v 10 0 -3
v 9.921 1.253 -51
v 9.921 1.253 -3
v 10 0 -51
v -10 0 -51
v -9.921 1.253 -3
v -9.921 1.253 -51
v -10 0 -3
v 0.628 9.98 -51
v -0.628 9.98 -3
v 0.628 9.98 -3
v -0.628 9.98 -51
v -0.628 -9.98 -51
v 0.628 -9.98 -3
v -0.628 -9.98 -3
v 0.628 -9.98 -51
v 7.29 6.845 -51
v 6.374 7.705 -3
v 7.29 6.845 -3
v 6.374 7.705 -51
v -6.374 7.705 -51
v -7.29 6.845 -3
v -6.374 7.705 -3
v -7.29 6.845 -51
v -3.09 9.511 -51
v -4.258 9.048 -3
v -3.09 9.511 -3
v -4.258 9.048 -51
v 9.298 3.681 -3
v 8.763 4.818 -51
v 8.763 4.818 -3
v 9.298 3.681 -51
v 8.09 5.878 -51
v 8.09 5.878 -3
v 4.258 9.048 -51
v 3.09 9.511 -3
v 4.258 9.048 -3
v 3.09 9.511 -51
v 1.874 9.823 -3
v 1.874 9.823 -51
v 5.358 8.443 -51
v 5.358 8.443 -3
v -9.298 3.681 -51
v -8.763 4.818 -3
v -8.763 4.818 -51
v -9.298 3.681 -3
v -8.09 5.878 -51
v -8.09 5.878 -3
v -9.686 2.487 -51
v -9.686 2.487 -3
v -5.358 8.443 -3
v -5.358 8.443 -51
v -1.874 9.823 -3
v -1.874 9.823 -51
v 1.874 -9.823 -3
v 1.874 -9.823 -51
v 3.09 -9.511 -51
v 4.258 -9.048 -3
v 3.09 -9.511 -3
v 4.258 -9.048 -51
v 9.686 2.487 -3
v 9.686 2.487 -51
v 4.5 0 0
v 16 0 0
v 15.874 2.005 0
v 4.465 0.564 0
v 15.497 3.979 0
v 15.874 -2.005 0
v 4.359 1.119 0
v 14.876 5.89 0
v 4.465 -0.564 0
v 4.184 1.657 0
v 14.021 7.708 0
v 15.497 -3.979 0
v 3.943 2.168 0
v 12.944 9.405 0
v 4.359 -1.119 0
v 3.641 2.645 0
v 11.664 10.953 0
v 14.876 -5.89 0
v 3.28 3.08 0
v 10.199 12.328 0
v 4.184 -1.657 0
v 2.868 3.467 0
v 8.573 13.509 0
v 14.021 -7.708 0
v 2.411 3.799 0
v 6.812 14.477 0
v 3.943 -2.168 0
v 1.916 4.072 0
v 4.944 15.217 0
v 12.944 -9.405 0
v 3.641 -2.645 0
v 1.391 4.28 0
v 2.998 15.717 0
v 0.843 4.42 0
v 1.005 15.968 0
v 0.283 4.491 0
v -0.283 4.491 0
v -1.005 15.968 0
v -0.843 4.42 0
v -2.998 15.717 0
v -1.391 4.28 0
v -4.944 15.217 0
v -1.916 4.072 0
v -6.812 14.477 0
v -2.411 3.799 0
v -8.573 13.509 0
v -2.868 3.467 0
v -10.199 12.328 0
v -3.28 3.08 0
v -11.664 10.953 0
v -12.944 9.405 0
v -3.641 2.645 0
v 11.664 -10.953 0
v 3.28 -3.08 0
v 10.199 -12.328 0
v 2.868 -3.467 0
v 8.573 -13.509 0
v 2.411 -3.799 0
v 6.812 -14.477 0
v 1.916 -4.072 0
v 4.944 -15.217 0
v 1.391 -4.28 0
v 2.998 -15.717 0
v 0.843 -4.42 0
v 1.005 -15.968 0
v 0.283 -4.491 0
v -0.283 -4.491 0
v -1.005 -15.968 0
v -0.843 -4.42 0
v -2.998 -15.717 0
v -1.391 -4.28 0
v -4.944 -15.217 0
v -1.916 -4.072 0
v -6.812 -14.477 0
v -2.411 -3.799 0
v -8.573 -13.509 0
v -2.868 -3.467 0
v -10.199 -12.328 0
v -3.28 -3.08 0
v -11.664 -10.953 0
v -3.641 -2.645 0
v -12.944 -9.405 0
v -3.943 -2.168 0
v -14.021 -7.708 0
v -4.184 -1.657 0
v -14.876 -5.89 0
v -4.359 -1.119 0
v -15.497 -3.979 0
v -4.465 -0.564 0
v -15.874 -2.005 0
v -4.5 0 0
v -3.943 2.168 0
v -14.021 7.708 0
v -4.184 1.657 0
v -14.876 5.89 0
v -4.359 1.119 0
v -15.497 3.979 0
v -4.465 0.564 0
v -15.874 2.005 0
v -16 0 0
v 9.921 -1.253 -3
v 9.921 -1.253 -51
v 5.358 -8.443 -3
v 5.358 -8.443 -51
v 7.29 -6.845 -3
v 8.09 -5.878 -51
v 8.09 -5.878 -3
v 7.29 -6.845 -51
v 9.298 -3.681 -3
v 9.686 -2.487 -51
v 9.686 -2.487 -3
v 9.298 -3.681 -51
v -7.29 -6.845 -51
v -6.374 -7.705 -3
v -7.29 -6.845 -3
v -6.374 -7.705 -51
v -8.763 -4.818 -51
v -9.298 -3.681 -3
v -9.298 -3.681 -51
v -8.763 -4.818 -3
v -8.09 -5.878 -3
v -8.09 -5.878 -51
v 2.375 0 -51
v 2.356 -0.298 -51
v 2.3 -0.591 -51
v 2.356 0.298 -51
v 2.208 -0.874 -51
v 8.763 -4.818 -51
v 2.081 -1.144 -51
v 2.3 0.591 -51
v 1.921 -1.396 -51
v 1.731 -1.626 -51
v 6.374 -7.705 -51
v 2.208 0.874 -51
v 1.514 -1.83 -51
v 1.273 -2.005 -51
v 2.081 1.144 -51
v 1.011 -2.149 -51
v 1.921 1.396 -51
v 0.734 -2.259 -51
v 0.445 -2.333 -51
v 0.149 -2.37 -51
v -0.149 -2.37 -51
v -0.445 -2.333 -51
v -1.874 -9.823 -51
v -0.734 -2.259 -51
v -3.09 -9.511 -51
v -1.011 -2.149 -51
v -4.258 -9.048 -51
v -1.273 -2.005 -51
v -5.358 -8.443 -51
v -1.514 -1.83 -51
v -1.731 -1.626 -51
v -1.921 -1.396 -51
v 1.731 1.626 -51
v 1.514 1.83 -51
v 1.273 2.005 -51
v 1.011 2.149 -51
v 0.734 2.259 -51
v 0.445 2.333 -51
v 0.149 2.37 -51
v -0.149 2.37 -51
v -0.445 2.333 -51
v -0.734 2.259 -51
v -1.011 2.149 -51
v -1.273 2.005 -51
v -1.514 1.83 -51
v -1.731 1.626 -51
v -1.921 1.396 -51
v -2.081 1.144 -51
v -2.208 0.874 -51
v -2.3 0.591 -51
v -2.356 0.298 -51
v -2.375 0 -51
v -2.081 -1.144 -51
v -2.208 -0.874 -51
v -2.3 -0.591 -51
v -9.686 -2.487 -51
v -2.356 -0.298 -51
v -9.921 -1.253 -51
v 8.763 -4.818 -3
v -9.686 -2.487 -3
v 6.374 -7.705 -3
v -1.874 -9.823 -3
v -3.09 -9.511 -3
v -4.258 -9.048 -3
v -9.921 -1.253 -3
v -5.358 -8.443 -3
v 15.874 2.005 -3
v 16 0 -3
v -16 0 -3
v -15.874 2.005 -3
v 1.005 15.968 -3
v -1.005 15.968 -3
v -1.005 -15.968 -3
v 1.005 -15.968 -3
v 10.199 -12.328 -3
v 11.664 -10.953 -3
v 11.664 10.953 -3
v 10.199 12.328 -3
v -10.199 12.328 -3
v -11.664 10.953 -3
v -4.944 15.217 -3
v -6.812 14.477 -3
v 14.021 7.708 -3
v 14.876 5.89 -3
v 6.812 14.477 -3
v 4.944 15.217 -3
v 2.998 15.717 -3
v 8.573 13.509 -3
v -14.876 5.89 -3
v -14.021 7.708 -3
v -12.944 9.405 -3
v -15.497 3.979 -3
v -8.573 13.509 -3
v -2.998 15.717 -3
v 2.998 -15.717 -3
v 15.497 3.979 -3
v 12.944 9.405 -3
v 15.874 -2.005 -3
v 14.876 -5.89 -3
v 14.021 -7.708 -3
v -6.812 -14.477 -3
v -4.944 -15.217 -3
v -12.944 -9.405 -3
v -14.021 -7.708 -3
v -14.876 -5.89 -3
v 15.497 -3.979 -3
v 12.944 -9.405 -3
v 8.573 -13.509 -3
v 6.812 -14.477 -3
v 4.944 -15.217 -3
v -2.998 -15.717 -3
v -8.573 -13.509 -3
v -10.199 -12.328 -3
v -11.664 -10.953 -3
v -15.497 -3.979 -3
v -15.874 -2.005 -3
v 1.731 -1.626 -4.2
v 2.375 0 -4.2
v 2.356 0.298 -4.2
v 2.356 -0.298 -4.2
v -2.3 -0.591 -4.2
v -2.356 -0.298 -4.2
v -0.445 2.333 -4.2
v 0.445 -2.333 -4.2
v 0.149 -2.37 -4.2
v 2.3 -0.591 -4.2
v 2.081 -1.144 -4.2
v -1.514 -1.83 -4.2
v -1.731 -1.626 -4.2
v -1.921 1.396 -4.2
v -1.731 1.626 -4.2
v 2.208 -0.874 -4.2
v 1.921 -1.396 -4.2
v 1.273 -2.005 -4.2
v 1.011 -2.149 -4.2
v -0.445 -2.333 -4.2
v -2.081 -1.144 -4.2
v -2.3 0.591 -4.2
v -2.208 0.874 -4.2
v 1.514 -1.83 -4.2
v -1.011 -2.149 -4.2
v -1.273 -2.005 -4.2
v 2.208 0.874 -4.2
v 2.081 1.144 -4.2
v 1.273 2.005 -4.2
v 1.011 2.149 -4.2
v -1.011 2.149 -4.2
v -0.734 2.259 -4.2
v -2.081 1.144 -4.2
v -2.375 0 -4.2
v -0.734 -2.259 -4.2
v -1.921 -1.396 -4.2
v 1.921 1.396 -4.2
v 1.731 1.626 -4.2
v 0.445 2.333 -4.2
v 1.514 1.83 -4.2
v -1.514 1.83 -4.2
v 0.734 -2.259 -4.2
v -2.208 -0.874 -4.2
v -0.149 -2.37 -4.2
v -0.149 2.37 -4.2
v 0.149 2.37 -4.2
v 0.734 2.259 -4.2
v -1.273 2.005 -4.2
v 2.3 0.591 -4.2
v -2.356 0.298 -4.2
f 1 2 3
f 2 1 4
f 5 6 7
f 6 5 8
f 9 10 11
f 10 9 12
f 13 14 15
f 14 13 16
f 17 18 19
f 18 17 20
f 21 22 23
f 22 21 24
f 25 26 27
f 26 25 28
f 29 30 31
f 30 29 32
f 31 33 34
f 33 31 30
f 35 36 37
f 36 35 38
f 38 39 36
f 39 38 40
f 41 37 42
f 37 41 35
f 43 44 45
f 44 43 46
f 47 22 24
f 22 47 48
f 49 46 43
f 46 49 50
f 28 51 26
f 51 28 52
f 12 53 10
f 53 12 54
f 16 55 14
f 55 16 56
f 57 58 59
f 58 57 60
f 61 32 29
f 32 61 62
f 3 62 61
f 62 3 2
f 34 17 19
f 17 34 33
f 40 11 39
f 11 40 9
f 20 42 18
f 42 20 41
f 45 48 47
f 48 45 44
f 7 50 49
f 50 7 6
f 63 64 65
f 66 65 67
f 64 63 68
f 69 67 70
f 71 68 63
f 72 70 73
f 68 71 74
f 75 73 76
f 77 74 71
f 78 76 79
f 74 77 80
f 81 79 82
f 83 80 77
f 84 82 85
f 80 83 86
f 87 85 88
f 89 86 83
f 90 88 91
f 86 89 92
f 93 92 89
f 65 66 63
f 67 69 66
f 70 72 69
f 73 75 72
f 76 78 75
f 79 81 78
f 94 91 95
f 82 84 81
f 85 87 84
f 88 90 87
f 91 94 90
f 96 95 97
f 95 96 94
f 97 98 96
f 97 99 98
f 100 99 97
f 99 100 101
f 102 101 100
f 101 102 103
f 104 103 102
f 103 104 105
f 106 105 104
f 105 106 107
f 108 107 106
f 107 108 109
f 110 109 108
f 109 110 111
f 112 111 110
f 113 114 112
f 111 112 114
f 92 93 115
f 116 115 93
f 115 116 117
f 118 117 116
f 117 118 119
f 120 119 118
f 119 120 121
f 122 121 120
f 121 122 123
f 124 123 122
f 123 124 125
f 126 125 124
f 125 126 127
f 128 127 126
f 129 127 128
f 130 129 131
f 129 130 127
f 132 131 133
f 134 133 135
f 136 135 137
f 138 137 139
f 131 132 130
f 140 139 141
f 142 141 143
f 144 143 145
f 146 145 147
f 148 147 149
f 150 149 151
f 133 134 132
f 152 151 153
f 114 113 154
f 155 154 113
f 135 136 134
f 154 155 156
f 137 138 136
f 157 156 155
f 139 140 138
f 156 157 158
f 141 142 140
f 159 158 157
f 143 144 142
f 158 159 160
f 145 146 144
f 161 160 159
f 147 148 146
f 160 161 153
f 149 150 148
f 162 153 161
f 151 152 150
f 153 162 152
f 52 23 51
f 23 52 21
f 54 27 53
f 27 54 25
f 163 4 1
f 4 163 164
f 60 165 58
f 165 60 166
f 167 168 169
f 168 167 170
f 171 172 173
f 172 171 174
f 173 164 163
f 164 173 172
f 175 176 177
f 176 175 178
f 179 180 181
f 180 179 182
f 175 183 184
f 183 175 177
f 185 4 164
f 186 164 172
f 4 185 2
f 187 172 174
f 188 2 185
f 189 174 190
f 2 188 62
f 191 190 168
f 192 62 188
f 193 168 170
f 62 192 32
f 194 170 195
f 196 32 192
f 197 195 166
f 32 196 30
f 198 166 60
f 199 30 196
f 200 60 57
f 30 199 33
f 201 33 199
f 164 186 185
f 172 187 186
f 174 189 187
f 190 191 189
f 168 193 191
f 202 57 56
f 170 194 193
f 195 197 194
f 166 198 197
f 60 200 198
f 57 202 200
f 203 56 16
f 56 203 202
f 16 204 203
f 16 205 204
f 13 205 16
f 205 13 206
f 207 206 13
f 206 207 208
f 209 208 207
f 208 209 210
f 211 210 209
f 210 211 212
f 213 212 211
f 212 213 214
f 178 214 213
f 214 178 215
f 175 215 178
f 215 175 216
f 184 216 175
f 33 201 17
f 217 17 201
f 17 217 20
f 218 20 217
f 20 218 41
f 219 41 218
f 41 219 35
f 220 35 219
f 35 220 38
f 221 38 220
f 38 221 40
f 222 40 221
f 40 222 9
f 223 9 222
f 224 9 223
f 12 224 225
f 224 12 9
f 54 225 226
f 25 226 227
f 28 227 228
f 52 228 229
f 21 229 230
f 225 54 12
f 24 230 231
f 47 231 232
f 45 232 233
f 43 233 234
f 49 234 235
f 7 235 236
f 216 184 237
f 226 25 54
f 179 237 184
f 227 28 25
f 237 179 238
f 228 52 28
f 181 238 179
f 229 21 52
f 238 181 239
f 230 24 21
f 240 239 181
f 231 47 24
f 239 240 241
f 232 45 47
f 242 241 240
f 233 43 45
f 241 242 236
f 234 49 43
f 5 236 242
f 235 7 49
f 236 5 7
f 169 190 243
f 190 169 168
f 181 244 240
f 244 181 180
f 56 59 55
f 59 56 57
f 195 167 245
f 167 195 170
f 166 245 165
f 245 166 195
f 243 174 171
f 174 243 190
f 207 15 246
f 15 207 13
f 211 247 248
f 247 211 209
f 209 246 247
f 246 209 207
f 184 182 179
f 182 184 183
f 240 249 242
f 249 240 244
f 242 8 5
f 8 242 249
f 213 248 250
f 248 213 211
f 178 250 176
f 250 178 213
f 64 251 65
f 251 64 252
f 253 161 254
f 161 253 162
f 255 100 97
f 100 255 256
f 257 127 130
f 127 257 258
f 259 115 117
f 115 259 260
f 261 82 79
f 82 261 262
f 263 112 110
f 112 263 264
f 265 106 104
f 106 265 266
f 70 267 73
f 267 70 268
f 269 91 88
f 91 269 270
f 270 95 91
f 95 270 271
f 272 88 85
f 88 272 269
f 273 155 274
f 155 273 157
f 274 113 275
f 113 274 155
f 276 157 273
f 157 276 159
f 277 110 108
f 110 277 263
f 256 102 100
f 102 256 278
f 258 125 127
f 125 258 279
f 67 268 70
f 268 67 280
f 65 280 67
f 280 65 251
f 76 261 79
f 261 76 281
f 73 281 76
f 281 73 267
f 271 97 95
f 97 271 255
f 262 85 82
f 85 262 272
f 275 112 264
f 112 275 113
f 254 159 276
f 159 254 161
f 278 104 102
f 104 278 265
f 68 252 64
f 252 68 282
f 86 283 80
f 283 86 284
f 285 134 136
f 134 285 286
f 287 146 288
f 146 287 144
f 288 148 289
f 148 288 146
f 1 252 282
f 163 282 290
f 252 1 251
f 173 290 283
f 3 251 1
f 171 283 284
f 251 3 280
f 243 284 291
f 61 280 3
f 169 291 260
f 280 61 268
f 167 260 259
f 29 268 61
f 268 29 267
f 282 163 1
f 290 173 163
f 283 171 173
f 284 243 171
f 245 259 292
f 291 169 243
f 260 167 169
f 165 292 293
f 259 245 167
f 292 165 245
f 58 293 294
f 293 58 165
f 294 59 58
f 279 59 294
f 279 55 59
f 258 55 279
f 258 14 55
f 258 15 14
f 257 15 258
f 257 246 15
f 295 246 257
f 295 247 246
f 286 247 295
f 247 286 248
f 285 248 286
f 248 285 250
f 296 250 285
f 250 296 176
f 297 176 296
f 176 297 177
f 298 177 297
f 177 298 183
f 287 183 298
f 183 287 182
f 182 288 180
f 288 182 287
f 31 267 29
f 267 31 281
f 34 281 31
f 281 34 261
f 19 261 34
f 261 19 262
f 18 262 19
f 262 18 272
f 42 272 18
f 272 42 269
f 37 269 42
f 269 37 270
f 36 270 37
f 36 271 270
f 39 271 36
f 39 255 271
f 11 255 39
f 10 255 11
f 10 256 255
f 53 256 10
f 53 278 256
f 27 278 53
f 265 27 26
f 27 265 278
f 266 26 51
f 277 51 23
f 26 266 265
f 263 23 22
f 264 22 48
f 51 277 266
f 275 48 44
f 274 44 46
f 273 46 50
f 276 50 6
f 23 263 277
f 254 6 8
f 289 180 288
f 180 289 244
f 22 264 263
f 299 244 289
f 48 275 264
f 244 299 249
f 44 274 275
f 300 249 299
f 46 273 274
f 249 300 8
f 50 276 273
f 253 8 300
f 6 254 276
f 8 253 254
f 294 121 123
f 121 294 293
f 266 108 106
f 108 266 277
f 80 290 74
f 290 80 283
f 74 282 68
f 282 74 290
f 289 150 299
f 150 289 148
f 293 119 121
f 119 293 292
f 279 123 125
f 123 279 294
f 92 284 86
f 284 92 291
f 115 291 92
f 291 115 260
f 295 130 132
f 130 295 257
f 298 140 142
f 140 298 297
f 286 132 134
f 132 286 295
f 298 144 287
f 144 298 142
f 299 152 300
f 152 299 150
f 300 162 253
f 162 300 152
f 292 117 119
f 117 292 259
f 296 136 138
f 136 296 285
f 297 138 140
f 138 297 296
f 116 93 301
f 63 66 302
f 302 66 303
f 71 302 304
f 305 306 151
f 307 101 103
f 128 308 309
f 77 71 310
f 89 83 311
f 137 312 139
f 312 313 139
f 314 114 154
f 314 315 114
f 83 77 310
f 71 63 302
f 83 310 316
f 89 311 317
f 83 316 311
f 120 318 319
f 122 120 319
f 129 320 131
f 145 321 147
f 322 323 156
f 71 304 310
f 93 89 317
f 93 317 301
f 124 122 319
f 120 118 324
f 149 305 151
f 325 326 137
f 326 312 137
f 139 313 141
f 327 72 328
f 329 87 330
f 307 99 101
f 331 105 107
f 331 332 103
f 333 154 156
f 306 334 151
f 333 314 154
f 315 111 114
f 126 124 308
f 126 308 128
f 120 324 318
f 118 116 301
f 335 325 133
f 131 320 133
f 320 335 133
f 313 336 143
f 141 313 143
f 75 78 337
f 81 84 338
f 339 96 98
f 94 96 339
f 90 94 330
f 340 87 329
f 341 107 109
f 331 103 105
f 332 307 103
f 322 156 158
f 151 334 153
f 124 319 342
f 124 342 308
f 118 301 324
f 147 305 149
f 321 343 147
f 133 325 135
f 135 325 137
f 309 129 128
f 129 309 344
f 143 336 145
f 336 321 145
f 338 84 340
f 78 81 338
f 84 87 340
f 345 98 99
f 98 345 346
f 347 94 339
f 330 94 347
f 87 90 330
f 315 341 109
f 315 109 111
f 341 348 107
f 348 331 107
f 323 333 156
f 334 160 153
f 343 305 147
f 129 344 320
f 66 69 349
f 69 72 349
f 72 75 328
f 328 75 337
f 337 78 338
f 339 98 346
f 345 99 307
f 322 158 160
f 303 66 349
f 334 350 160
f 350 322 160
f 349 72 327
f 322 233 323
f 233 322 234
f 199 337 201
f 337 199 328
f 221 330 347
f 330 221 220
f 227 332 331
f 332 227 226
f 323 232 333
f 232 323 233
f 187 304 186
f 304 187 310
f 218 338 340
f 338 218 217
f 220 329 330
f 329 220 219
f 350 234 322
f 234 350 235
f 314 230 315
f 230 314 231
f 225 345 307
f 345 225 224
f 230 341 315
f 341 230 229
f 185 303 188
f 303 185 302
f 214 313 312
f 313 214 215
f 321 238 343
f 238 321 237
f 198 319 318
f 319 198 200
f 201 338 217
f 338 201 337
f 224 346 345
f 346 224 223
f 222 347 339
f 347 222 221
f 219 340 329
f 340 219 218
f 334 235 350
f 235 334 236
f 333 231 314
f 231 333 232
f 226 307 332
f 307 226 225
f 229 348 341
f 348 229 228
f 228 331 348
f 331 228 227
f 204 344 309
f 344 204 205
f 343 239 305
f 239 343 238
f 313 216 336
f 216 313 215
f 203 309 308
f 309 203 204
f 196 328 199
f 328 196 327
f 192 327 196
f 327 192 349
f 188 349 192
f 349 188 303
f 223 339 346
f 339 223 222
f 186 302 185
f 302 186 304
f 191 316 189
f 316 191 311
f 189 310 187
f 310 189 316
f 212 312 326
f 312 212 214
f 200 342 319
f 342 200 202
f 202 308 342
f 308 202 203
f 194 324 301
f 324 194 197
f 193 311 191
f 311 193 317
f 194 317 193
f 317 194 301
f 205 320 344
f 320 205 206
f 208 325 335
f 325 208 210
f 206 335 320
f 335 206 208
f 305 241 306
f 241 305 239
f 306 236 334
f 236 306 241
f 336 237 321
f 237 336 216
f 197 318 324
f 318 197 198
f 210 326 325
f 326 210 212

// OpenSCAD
$fn = 50;


difference() {
	union() {
		translate(v = [0, 0, -51.0000000000]) {
			cylinder(h = 51, r = 10.0000000000);
		}
		translate(v = [0, 0, -3.0000000000]) {
			cylinder(h = 3, r = 16.0000000000);
		}
	}
	union() {
		translate(v = [0, 0, 0]) {
			rotate(a = [0, 0, 0]) {
				difference() {
					union() {
						#translate(v = [0, 0, -51.0000000000]) {
							cylinder(h = 51, r = 2.2500000000);
						}
						#translate(v = [0, 0, -4.2000000000]) {
							cylinder(h = 4.2000000000, r = 10.0000000000, r1 = 2.3750000000, r2 = 4.5000000000);
						}
						#translate(v = [0, 0, -51.0000000000]) {
							cylinder(h = 51, r = 2.3750000000);
						}
						#translate(v = [0, 0, -51.0000000000]) {
							cylinder(h = 51, r = 2.2500000000);
						}
					}
					union();
				}
			}
		}
	}
}
